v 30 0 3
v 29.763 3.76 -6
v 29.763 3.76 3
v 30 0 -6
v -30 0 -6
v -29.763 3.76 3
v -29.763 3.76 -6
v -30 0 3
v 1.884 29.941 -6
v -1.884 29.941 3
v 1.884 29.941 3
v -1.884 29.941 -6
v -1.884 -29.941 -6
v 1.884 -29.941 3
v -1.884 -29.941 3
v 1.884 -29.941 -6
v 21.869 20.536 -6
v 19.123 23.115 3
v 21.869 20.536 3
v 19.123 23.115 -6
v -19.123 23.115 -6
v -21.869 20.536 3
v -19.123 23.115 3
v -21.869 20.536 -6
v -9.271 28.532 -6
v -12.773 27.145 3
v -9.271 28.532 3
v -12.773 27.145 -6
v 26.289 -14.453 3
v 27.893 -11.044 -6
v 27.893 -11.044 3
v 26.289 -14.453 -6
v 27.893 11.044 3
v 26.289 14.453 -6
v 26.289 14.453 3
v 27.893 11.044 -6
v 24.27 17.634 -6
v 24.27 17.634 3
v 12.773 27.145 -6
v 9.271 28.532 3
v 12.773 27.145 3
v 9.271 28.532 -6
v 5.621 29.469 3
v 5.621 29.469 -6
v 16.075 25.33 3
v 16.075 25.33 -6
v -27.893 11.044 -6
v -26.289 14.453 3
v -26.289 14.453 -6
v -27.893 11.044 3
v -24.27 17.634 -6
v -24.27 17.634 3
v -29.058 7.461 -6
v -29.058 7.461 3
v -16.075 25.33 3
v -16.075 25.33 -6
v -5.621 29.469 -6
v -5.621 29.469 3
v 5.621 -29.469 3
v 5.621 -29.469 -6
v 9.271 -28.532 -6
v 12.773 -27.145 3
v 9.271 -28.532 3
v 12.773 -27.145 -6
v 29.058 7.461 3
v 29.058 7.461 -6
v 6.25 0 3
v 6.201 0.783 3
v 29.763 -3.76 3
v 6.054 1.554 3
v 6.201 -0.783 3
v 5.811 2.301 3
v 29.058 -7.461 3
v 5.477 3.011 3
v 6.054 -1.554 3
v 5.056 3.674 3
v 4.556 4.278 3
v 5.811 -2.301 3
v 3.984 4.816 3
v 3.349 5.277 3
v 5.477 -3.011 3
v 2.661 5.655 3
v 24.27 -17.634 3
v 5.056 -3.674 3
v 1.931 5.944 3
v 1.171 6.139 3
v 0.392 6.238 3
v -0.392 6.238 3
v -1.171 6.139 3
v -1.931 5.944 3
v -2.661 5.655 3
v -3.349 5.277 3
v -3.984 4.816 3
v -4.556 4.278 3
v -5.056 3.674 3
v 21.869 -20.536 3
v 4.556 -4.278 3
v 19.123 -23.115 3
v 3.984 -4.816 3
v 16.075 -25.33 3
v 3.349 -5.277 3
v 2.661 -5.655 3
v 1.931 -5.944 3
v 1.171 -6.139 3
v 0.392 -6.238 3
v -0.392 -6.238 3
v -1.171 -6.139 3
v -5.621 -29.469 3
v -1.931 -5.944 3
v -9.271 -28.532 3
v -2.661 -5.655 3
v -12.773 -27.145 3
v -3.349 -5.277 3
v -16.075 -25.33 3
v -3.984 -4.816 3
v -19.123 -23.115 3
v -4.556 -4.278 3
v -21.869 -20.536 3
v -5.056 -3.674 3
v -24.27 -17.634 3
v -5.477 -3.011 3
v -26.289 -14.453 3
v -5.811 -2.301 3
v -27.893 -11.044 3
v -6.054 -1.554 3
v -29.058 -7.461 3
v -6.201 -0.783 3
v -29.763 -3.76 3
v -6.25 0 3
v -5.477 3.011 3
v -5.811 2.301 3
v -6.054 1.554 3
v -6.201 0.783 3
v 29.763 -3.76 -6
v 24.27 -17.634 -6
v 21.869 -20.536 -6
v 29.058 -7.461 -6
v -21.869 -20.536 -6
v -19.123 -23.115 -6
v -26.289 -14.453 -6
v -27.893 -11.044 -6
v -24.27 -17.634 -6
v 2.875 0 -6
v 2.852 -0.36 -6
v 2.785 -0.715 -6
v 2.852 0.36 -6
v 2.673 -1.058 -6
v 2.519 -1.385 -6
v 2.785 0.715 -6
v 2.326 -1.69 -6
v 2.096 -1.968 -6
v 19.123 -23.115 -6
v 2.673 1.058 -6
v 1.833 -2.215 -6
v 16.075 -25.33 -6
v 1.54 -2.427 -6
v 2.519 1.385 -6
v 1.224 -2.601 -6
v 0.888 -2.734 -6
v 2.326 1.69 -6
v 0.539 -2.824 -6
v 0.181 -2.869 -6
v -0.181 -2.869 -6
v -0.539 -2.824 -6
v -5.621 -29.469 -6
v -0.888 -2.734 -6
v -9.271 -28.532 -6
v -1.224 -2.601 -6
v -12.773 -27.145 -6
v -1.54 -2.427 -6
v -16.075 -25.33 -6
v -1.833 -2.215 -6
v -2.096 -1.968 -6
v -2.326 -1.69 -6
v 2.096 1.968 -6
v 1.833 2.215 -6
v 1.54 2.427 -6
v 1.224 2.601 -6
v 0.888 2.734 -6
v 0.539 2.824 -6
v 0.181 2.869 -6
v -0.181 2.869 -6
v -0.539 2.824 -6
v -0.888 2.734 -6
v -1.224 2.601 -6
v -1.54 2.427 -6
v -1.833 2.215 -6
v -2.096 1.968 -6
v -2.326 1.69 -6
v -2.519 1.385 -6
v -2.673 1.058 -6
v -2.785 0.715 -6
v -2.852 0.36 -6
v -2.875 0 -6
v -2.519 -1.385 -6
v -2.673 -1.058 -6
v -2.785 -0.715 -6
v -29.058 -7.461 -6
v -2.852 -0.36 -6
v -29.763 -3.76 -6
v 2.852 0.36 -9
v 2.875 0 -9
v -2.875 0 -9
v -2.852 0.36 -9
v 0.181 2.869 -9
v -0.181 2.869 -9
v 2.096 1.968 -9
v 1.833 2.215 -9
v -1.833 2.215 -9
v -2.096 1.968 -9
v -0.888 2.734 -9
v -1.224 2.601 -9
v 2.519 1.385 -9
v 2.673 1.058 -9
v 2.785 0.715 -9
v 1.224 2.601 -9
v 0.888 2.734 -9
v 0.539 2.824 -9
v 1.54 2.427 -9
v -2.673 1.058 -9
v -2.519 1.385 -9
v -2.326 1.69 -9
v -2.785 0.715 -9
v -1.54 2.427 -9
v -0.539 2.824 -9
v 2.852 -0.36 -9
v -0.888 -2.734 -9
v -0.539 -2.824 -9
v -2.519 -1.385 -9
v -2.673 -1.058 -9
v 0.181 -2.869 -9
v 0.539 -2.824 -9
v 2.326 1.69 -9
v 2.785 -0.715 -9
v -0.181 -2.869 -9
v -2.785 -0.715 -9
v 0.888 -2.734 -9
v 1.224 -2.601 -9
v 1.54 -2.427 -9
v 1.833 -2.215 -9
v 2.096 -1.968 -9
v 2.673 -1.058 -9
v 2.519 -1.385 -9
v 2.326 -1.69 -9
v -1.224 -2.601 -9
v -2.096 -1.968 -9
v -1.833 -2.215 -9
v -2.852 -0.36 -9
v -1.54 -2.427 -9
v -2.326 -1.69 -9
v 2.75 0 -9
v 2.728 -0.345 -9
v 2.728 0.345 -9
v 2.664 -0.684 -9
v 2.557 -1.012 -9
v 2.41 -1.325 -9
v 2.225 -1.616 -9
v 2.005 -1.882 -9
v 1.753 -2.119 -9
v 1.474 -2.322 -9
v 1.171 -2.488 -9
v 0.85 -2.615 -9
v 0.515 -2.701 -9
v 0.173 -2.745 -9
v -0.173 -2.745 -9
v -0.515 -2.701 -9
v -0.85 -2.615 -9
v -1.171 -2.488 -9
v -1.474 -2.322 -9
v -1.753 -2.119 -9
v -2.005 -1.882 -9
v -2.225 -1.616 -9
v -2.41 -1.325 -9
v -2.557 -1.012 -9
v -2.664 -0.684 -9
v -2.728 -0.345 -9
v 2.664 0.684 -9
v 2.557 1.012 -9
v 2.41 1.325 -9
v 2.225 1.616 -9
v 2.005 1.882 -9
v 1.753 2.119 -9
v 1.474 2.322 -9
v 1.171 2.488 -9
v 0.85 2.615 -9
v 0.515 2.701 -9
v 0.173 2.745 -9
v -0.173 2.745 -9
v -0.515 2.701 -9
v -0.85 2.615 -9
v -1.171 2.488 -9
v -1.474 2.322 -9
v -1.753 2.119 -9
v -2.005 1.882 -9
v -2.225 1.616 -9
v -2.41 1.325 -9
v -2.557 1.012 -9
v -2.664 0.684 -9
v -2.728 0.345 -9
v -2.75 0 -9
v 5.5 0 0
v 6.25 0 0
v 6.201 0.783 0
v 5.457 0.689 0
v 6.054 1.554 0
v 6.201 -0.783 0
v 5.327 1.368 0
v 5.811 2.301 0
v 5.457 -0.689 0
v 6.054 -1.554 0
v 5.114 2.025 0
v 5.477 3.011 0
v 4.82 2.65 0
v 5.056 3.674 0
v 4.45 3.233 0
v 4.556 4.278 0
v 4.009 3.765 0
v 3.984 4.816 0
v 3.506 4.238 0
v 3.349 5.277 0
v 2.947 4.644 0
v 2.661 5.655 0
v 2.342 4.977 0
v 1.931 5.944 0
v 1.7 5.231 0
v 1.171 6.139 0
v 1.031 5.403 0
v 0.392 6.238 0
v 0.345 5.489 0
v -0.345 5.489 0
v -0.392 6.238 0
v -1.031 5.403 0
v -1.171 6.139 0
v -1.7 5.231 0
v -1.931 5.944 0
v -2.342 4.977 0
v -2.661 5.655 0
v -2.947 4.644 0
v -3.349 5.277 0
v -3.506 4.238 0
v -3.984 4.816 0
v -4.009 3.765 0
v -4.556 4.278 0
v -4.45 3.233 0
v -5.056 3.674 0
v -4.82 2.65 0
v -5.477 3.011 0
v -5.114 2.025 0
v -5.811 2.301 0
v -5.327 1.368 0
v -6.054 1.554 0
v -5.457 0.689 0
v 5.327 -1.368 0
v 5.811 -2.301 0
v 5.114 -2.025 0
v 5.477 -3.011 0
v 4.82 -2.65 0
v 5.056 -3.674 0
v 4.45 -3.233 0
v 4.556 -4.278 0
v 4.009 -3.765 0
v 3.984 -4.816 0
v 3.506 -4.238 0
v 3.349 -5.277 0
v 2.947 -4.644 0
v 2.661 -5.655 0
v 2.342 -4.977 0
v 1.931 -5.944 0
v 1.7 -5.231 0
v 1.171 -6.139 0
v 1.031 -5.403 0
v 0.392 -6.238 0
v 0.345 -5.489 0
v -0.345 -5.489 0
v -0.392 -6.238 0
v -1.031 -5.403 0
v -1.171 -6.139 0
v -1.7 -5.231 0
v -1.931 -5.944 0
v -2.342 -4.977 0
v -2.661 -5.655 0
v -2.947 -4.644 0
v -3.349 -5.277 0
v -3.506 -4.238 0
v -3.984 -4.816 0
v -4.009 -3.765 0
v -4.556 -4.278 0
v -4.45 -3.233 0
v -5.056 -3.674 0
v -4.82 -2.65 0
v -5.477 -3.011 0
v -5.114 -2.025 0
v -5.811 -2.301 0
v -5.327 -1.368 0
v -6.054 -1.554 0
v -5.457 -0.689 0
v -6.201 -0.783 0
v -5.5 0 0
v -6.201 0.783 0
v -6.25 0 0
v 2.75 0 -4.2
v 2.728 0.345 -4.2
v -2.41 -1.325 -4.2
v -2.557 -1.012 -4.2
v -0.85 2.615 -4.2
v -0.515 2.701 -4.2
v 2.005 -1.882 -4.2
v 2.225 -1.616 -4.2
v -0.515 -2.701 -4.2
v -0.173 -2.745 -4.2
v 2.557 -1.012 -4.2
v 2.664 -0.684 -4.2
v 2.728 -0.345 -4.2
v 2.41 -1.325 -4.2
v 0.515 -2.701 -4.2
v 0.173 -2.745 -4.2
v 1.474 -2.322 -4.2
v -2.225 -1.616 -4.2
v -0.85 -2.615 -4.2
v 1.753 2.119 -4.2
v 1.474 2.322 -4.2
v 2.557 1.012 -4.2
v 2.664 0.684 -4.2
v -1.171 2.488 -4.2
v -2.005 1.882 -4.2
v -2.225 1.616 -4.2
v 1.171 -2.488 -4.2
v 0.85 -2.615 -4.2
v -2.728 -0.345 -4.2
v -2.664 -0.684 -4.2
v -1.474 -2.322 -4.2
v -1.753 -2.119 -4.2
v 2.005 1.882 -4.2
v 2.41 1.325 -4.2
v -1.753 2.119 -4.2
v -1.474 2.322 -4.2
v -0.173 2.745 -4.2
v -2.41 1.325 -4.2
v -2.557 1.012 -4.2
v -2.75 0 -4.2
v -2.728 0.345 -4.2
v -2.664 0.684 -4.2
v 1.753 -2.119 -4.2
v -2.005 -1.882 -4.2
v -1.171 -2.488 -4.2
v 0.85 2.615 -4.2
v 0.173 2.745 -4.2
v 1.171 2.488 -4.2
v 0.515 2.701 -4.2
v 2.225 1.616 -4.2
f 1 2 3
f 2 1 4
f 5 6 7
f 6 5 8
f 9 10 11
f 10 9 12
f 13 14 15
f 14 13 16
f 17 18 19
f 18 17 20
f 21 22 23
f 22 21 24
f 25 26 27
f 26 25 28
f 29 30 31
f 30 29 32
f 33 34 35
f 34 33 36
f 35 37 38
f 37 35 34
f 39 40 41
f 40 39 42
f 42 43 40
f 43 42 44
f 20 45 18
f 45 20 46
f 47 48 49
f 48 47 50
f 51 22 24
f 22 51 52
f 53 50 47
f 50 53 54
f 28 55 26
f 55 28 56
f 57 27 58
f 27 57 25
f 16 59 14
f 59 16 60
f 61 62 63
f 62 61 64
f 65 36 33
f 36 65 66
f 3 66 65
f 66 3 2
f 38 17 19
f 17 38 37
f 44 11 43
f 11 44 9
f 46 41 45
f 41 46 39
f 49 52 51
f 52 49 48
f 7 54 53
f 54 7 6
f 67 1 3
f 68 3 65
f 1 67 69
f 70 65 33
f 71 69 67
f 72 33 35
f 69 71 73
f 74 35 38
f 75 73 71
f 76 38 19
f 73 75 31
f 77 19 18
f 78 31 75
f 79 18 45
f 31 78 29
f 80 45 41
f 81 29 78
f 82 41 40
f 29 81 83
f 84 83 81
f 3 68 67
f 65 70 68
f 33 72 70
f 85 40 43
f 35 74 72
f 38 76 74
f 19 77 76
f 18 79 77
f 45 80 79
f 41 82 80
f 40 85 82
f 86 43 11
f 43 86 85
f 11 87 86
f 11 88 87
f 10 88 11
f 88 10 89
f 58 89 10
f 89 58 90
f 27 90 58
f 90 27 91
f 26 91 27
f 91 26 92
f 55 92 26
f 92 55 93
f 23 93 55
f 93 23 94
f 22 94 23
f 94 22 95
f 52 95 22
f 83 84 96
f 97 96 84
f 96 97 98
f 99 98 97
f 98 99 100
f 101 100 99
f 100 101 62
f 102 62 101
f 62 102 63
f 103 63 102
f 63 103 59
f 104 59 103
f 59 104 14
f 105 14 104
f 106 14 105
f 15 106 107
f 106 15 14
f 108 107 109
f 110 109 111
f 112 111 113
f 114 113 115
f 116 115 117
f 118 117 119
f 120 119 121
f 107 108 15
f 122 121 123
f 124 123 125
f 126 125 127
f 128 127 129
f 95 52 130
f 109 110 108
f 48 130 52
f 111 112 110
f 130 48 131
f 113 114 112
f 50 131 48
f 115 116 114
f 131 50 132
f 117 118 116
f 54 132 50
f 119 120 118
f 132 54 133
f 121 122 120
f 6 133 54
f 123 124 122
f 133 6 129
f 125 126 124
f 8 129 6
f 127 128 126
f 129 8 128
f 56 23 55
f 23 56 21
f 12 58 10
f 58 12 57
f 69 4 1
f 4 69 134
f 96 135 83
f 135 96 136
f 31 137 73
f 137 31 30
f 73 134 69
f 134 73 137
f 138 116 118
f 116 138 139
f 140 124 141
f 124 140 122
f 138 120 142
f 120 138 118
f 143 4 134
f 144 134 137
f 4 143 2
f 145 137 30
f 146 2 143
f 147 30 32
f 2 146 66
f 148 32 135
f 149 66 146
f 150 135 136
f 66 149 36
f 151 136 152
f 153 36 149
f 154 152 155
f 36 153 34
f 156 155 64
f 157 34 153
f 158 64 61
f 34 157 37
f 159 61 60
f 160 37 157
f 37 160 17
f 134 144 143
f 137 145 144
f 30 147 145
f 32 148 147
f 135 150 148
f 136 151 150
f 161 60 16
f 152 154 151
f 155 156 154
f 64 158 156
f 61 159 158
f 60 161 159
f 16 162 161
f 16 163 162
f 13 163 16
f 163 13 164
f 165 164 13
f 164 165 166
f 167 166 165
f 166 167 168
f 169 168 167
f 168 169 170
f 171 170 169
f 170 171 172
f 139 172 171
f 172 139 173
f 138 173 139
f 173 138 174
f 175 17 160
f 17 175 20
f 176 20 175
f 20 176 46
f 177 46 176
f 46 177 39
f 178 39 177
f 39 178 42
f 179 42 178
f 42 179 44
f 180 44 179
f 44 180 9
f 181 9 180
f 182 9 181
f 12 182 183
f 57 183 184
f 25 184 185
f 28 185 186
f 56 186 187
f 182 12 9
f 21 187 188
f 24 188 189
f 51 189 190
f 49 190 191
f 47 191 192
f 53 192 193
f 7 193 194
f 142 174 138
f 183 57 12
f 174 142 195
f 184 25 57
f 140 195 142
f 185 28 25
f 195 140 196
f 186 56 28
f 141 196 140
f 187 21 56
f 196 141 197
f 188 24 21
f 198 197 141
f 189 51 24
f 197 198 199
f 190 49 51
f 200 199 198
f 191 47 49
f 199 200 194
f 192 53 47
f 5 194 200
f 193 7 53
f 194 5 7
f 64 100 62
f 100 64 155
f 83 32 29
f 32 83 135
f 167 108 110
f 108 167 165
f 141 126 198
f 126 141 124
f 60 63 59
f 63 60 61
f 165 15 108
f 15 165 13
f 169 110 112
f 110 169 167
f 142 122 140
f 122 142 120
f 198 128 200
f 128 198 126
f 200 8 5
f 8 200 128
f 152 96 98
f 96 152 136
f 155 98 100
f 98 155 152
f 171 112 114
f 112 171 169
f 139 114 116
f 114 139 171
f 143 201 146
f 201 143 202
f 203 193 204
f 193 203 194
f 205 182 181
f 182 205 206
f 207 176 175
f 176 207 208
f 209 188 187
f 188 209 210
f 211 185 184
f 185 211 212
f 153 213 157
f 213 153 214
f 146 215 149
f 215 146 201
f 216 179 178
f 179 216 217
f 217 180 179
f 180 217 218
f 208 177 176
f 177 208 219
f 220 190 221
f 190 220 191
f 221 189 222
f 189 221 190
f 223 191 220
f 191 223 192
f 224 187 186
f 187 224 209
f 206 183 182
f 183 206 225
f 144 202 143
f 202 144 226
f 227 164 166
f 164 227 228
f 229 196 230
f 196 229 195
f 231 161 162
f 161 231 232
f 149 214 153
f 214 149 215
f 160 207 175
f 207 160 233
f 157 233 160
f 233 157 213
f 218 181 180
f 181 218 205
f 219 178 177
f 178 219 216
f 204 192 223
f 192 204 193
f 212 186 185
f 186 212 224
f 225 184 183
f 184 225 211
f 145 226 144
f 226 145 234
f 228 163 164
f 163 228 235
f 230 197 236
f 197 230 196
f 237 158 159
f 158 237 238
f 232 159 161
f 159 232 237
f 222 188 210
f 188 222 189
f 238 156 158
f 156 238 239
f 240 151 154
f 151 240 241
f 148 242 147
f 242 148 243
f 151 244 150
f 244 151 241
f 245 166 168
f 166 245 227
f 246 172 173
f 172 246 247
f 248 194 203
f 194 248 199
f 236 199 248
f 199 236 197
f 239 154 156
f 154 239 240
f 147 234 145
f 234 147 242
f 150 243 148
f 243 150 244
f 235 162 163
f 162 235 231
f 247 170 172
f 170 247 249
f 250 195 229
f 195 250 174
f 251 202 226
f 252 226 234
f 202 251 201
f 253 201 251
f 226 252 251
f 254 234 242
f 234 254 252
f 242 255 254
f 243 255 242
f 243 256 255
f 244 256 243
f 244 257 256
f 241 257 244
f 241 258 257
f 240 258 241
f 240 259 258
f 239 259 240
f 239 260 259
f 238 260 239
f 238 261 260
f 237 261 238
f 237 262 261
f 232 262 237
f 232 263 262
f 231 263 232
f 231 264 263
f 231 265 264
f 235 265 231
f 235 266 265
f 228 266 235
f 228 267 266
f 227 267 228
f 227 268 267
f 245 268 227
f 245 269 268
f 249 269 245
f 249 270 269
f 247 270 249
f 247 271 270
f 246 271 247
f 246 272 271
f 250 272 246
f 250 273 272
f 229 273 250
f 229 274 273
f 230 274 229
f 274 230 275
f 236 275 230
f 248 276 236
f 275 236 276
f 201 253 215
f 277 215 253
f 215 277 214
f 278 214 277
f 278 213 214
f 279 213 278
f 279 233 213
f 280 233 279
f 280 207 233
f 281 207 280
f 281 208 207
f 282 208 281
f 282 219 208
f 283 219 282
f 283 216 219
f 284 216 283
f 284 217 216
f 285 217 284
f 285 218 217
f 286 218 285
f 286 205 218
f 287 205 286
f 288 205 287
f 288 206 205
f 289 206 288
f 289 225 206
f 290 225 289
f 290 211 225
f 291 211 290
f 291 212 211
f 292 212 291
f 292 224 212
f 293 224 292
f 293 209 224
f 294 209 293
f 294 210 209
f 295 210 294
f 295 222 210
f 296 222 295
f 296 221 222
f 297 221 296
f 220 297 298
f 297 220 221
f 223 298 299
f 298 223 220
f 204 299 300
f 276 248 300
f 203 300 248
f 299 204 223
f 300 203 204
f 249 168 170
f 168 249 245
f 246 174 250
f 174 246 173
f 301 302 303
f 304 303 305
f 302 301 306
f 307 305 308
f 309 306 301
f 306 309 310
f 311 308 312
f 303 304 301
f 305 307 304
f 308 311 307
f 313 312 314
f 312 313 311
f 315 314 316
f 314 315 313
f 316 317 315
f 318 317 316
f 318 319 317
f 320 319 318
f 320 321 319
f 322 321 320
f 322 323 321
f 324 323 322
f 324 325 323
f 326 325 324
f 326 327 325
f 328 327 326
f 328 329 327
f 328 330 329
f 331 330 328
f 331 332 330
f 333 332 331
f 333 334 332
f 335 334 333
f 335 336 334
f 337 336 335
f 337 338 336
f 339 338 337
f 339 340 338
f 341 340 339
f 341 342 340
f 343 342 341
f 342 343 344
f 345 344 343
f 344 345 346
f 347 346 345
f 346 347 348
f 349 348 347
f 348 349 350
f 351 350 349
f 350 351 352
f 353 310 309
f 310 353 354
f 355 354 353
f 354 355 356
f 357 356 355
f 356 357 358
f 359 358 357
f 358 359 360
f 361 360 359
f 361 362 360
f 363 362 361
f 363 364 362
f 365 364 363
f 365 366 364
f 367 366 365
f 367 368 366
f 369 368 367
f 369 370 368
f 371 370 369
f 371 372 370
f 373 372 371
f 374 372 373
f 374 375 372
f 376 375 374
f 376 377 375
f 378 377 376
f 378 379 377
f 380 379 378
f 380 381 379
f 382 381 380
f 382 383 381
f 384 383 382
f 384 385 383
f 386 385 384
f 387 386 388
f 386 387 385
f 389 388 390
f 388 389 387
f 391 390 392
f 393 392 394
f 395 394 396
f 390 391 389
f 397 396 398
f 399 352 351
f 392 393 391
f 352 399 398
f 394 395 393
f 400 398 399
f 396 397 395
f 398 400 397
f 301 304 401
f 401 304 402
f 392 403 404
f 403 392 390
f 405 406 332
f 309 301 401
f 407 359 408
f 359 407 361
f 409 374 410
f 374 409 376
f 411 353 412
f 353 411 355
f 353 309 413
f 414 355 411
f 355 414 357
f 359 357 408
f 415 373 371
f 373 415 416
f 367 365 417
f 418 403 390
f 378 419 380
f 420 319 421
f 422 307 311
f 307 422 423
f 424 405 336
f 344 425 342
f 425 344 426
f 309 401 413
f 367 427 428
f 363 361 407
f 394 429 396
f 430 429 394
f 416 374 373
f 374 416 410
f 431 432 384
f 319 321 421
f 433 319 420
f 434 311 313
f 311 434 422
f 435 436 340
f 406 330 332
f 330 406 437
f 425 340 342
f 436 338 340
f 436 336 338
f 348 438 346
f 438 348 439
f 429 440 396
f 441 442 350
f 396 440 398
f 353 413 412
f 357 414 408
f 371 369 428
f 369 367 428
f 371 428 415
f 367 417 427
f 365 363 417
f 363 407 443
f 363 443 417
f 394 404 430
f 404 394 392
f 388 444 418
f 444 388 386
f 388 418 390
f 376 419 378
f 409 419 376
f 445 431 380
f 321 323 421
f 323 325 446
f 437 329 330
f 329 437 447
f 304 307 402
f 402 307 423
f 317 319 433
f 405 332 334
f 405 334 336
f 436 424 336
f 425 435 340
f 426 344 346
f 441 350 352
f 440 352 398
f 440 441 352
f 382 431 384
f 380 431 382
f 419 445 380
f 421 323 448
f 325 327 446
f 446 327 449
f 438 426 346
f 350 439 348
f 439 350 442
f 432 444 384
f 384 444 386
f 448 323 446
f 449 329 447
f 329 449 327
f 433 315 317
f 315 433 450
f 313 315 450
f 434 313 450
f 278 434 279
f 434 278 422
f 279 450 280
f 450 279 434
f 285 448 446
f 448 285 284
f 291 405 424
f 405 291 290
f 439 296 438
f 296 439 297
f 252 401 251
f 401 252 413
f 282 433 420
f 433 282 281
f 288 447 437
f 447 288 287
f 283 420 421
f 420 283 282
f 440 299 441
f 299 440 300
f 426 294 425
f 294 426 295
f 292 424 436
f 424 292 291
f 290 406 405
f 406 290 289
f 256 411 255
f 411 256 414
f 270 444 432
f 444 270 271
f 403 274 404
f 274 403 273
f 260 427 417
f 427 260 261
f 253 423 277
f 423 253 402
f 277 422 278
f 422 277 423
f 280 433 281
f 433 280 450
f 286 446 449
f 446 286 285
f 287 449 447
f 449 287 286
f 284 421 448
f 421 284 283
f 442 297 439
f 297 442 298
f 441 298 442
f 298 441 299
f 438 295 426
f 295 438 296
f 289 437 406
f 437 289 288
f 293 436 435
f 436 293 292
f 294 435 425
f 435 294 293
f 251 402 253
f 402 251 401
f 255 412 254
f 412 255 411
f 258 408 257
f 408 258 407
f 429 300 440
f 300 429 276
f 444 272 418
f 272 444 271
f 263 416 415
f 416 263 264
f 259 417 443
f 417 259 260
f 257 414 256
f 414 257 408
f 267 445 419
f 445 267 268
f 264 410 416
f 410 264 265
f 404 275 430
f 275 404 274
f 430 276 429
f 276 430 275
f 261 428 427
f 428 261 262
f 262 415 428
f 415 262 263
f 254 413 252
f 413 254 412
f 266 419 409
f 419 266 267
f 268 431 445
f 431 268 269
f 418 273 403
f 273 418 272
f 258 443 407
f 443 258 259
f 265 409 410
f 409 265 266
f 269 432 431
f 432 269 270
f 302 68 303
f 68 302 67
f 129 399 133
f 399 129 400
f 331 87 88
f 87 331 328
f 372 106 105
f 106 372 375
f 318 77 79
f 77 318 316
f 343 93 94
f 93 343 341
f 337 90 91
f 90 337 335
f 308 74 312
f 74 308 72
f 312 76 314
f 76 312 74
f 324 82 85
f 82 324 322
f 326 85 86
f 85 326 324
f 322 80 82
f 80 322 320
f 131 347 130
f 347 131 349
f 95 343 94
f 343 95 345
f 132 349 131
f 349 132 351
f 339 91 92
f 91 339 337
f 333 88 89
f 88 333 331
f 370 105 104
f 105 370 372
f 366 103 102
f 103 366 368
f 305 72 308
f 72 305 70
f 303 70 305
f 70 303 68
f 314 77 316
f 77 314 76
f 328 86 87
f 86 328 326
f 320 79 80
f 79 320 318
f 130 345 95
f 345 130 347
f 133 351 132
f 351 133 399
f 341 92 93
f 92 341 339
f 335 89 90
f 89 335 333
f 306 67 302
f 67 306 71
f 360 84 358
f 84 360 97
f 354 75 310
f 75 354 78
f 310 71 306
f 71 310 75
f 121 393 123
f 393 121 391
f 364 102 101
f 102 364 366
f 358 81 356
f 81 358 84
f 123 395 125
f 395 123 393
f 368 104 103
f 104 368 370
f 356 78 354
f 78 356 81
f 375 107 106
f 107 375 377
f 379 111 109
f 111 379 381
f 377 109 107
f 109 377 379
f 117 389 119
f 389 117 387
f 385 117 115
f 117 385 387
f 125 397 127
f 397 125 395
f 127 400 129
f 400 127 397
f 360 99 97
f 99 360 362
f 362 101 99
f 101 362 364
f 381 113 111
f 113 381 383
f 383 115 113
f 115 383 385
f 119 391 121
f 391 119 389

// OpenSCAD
$fn = 50;

difference() {
	union() {
		translate(v = [0, 0, -6.0]) {
			cylinder(h = 9, r = 30.0);
		}
		#translate(v = [0, 0, -9.0]) {
			cylinder(h = 9, r = 2.875);
		}
	}
	union() {
		translate(v = [0, 0, 0]) {
			rotate(a = [0, 0, 0]) {
				difference() {
					union() {
						translate(v = [0, 0, -9.0]) {
							cylinder(h = 9, r = 2.25);
						}
						translate(v = [0, 0, -4.2]) {
							cylinder(h = 4.2, r1 = 2.75, r2 = 5.5);
						}
						translate(v = [0, 0, -9.0]) {
							cylinder(h = 9, r = 2.75);
						}
						translate(v = [0, 0, -9.0]) {
							cylinder(h = 9, r = 2.25);
						}
					}
					union();
				}
			}
		}
		#cylinder(h = 3, r = 6.25);
	}
}
